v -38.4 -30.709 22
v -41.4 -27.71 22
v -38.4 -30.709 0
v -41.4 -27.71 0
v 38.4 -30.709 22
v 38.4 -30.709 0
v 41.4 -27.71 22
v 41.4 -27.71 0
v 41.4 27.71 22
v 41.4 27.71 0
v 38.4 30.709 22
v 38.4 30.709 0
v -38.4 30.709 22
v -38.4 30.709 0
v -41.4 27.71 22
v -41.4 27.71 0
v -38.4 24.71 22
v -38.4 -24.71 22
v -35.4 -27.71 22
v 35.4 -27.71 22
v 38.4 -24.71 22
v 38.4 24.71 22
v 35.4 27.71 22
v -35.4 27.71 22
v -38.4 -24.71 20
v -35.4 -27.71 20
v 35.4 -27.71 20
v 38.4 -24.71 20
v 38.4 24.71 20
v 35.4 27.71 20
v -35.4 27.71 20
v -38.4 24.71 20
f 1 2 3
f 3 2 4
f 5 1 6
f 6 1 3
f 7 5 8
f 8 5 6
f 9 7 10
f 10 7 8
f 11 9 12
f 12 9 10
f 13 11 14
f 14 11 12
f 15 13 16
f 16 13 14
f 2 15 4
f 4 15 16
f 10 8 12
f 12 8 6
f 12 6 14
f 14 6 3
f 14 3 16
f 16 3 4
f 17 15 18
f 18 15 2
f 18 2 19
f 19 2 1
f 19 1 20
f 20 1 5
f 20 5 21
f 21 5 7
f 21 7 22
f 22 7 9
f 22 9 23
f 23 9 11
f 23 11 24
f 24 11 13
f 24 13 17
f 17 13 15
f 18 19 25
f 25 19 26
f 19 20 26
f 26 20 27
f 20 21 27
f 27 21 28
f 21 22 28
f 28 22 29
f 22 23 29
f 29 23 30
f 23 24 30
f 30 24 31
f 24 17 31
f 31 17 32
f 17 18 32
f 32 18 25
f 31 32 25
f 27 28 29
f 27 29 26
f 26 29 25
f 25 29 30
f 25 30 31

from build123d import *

# Parameters (mm, degrees)
SUPPORT_PLANE_EXACTLY_20MM_ABOVE_TABLE_DEPTH   = 20
LOW_LOCATING_LIP_0P4MM_CLEARANCE_EACH_SI_START = 20
LOW_LOCATING_LIP_0P4MM_CLEARANCE_EACH_SI_DEPTH = 2


with BuildPart() as part:
    # 草图1 → Support_plane_exactly_20mm_above_table (new body)
    with BuildSketch(Plane.XY):
        Polygon((-38.4, -30.7095), (38.4, -30.7095), (41.4, -27.7095), (41.4, 27.7095), (38.4, 30.7095), (-38.4, 30.7095), (-41.4, 27.7095), (-41.4, -27.7095), align=None)
    extrude(amount=SUPPORT_PLANE_EXACTLY_20MM_ABOVE_TABLE_DEPTH)

    # 草图2 → Low_locating_lip_0p4mm_clearance_each_side (add)
    with BuildSketch(Plane.XY.offset(LOW_LOCATING_LIP_0P4MM_CLEARANCE_EACH_SI_START)):
        Polygon((-38.4, -30.7095), (38.4, -30.7095), (41.4, -27.7095), (41.4, 27.7095), (38.4, 30.7095), (-38.4, 30.7095), (-41.4, 27.7095), (-41.4, -27.7095), align=None)
        Polygon((-35.4, -27.7095), (35.4, -27.7095), (38.4, -24.7095), (38.4, 24.7095), (35.4, 27.7095), (-35.4, 27.7095), (-38.4, 24.7095), (-38.4, -24.7095), align=None, mode=Mode.SUBTRACT)
    extrude(amount=LOW_LOCATING_LIP_0P4MM_CLEARANCE_EACH_SI_DEPTH)


solid = part.part
